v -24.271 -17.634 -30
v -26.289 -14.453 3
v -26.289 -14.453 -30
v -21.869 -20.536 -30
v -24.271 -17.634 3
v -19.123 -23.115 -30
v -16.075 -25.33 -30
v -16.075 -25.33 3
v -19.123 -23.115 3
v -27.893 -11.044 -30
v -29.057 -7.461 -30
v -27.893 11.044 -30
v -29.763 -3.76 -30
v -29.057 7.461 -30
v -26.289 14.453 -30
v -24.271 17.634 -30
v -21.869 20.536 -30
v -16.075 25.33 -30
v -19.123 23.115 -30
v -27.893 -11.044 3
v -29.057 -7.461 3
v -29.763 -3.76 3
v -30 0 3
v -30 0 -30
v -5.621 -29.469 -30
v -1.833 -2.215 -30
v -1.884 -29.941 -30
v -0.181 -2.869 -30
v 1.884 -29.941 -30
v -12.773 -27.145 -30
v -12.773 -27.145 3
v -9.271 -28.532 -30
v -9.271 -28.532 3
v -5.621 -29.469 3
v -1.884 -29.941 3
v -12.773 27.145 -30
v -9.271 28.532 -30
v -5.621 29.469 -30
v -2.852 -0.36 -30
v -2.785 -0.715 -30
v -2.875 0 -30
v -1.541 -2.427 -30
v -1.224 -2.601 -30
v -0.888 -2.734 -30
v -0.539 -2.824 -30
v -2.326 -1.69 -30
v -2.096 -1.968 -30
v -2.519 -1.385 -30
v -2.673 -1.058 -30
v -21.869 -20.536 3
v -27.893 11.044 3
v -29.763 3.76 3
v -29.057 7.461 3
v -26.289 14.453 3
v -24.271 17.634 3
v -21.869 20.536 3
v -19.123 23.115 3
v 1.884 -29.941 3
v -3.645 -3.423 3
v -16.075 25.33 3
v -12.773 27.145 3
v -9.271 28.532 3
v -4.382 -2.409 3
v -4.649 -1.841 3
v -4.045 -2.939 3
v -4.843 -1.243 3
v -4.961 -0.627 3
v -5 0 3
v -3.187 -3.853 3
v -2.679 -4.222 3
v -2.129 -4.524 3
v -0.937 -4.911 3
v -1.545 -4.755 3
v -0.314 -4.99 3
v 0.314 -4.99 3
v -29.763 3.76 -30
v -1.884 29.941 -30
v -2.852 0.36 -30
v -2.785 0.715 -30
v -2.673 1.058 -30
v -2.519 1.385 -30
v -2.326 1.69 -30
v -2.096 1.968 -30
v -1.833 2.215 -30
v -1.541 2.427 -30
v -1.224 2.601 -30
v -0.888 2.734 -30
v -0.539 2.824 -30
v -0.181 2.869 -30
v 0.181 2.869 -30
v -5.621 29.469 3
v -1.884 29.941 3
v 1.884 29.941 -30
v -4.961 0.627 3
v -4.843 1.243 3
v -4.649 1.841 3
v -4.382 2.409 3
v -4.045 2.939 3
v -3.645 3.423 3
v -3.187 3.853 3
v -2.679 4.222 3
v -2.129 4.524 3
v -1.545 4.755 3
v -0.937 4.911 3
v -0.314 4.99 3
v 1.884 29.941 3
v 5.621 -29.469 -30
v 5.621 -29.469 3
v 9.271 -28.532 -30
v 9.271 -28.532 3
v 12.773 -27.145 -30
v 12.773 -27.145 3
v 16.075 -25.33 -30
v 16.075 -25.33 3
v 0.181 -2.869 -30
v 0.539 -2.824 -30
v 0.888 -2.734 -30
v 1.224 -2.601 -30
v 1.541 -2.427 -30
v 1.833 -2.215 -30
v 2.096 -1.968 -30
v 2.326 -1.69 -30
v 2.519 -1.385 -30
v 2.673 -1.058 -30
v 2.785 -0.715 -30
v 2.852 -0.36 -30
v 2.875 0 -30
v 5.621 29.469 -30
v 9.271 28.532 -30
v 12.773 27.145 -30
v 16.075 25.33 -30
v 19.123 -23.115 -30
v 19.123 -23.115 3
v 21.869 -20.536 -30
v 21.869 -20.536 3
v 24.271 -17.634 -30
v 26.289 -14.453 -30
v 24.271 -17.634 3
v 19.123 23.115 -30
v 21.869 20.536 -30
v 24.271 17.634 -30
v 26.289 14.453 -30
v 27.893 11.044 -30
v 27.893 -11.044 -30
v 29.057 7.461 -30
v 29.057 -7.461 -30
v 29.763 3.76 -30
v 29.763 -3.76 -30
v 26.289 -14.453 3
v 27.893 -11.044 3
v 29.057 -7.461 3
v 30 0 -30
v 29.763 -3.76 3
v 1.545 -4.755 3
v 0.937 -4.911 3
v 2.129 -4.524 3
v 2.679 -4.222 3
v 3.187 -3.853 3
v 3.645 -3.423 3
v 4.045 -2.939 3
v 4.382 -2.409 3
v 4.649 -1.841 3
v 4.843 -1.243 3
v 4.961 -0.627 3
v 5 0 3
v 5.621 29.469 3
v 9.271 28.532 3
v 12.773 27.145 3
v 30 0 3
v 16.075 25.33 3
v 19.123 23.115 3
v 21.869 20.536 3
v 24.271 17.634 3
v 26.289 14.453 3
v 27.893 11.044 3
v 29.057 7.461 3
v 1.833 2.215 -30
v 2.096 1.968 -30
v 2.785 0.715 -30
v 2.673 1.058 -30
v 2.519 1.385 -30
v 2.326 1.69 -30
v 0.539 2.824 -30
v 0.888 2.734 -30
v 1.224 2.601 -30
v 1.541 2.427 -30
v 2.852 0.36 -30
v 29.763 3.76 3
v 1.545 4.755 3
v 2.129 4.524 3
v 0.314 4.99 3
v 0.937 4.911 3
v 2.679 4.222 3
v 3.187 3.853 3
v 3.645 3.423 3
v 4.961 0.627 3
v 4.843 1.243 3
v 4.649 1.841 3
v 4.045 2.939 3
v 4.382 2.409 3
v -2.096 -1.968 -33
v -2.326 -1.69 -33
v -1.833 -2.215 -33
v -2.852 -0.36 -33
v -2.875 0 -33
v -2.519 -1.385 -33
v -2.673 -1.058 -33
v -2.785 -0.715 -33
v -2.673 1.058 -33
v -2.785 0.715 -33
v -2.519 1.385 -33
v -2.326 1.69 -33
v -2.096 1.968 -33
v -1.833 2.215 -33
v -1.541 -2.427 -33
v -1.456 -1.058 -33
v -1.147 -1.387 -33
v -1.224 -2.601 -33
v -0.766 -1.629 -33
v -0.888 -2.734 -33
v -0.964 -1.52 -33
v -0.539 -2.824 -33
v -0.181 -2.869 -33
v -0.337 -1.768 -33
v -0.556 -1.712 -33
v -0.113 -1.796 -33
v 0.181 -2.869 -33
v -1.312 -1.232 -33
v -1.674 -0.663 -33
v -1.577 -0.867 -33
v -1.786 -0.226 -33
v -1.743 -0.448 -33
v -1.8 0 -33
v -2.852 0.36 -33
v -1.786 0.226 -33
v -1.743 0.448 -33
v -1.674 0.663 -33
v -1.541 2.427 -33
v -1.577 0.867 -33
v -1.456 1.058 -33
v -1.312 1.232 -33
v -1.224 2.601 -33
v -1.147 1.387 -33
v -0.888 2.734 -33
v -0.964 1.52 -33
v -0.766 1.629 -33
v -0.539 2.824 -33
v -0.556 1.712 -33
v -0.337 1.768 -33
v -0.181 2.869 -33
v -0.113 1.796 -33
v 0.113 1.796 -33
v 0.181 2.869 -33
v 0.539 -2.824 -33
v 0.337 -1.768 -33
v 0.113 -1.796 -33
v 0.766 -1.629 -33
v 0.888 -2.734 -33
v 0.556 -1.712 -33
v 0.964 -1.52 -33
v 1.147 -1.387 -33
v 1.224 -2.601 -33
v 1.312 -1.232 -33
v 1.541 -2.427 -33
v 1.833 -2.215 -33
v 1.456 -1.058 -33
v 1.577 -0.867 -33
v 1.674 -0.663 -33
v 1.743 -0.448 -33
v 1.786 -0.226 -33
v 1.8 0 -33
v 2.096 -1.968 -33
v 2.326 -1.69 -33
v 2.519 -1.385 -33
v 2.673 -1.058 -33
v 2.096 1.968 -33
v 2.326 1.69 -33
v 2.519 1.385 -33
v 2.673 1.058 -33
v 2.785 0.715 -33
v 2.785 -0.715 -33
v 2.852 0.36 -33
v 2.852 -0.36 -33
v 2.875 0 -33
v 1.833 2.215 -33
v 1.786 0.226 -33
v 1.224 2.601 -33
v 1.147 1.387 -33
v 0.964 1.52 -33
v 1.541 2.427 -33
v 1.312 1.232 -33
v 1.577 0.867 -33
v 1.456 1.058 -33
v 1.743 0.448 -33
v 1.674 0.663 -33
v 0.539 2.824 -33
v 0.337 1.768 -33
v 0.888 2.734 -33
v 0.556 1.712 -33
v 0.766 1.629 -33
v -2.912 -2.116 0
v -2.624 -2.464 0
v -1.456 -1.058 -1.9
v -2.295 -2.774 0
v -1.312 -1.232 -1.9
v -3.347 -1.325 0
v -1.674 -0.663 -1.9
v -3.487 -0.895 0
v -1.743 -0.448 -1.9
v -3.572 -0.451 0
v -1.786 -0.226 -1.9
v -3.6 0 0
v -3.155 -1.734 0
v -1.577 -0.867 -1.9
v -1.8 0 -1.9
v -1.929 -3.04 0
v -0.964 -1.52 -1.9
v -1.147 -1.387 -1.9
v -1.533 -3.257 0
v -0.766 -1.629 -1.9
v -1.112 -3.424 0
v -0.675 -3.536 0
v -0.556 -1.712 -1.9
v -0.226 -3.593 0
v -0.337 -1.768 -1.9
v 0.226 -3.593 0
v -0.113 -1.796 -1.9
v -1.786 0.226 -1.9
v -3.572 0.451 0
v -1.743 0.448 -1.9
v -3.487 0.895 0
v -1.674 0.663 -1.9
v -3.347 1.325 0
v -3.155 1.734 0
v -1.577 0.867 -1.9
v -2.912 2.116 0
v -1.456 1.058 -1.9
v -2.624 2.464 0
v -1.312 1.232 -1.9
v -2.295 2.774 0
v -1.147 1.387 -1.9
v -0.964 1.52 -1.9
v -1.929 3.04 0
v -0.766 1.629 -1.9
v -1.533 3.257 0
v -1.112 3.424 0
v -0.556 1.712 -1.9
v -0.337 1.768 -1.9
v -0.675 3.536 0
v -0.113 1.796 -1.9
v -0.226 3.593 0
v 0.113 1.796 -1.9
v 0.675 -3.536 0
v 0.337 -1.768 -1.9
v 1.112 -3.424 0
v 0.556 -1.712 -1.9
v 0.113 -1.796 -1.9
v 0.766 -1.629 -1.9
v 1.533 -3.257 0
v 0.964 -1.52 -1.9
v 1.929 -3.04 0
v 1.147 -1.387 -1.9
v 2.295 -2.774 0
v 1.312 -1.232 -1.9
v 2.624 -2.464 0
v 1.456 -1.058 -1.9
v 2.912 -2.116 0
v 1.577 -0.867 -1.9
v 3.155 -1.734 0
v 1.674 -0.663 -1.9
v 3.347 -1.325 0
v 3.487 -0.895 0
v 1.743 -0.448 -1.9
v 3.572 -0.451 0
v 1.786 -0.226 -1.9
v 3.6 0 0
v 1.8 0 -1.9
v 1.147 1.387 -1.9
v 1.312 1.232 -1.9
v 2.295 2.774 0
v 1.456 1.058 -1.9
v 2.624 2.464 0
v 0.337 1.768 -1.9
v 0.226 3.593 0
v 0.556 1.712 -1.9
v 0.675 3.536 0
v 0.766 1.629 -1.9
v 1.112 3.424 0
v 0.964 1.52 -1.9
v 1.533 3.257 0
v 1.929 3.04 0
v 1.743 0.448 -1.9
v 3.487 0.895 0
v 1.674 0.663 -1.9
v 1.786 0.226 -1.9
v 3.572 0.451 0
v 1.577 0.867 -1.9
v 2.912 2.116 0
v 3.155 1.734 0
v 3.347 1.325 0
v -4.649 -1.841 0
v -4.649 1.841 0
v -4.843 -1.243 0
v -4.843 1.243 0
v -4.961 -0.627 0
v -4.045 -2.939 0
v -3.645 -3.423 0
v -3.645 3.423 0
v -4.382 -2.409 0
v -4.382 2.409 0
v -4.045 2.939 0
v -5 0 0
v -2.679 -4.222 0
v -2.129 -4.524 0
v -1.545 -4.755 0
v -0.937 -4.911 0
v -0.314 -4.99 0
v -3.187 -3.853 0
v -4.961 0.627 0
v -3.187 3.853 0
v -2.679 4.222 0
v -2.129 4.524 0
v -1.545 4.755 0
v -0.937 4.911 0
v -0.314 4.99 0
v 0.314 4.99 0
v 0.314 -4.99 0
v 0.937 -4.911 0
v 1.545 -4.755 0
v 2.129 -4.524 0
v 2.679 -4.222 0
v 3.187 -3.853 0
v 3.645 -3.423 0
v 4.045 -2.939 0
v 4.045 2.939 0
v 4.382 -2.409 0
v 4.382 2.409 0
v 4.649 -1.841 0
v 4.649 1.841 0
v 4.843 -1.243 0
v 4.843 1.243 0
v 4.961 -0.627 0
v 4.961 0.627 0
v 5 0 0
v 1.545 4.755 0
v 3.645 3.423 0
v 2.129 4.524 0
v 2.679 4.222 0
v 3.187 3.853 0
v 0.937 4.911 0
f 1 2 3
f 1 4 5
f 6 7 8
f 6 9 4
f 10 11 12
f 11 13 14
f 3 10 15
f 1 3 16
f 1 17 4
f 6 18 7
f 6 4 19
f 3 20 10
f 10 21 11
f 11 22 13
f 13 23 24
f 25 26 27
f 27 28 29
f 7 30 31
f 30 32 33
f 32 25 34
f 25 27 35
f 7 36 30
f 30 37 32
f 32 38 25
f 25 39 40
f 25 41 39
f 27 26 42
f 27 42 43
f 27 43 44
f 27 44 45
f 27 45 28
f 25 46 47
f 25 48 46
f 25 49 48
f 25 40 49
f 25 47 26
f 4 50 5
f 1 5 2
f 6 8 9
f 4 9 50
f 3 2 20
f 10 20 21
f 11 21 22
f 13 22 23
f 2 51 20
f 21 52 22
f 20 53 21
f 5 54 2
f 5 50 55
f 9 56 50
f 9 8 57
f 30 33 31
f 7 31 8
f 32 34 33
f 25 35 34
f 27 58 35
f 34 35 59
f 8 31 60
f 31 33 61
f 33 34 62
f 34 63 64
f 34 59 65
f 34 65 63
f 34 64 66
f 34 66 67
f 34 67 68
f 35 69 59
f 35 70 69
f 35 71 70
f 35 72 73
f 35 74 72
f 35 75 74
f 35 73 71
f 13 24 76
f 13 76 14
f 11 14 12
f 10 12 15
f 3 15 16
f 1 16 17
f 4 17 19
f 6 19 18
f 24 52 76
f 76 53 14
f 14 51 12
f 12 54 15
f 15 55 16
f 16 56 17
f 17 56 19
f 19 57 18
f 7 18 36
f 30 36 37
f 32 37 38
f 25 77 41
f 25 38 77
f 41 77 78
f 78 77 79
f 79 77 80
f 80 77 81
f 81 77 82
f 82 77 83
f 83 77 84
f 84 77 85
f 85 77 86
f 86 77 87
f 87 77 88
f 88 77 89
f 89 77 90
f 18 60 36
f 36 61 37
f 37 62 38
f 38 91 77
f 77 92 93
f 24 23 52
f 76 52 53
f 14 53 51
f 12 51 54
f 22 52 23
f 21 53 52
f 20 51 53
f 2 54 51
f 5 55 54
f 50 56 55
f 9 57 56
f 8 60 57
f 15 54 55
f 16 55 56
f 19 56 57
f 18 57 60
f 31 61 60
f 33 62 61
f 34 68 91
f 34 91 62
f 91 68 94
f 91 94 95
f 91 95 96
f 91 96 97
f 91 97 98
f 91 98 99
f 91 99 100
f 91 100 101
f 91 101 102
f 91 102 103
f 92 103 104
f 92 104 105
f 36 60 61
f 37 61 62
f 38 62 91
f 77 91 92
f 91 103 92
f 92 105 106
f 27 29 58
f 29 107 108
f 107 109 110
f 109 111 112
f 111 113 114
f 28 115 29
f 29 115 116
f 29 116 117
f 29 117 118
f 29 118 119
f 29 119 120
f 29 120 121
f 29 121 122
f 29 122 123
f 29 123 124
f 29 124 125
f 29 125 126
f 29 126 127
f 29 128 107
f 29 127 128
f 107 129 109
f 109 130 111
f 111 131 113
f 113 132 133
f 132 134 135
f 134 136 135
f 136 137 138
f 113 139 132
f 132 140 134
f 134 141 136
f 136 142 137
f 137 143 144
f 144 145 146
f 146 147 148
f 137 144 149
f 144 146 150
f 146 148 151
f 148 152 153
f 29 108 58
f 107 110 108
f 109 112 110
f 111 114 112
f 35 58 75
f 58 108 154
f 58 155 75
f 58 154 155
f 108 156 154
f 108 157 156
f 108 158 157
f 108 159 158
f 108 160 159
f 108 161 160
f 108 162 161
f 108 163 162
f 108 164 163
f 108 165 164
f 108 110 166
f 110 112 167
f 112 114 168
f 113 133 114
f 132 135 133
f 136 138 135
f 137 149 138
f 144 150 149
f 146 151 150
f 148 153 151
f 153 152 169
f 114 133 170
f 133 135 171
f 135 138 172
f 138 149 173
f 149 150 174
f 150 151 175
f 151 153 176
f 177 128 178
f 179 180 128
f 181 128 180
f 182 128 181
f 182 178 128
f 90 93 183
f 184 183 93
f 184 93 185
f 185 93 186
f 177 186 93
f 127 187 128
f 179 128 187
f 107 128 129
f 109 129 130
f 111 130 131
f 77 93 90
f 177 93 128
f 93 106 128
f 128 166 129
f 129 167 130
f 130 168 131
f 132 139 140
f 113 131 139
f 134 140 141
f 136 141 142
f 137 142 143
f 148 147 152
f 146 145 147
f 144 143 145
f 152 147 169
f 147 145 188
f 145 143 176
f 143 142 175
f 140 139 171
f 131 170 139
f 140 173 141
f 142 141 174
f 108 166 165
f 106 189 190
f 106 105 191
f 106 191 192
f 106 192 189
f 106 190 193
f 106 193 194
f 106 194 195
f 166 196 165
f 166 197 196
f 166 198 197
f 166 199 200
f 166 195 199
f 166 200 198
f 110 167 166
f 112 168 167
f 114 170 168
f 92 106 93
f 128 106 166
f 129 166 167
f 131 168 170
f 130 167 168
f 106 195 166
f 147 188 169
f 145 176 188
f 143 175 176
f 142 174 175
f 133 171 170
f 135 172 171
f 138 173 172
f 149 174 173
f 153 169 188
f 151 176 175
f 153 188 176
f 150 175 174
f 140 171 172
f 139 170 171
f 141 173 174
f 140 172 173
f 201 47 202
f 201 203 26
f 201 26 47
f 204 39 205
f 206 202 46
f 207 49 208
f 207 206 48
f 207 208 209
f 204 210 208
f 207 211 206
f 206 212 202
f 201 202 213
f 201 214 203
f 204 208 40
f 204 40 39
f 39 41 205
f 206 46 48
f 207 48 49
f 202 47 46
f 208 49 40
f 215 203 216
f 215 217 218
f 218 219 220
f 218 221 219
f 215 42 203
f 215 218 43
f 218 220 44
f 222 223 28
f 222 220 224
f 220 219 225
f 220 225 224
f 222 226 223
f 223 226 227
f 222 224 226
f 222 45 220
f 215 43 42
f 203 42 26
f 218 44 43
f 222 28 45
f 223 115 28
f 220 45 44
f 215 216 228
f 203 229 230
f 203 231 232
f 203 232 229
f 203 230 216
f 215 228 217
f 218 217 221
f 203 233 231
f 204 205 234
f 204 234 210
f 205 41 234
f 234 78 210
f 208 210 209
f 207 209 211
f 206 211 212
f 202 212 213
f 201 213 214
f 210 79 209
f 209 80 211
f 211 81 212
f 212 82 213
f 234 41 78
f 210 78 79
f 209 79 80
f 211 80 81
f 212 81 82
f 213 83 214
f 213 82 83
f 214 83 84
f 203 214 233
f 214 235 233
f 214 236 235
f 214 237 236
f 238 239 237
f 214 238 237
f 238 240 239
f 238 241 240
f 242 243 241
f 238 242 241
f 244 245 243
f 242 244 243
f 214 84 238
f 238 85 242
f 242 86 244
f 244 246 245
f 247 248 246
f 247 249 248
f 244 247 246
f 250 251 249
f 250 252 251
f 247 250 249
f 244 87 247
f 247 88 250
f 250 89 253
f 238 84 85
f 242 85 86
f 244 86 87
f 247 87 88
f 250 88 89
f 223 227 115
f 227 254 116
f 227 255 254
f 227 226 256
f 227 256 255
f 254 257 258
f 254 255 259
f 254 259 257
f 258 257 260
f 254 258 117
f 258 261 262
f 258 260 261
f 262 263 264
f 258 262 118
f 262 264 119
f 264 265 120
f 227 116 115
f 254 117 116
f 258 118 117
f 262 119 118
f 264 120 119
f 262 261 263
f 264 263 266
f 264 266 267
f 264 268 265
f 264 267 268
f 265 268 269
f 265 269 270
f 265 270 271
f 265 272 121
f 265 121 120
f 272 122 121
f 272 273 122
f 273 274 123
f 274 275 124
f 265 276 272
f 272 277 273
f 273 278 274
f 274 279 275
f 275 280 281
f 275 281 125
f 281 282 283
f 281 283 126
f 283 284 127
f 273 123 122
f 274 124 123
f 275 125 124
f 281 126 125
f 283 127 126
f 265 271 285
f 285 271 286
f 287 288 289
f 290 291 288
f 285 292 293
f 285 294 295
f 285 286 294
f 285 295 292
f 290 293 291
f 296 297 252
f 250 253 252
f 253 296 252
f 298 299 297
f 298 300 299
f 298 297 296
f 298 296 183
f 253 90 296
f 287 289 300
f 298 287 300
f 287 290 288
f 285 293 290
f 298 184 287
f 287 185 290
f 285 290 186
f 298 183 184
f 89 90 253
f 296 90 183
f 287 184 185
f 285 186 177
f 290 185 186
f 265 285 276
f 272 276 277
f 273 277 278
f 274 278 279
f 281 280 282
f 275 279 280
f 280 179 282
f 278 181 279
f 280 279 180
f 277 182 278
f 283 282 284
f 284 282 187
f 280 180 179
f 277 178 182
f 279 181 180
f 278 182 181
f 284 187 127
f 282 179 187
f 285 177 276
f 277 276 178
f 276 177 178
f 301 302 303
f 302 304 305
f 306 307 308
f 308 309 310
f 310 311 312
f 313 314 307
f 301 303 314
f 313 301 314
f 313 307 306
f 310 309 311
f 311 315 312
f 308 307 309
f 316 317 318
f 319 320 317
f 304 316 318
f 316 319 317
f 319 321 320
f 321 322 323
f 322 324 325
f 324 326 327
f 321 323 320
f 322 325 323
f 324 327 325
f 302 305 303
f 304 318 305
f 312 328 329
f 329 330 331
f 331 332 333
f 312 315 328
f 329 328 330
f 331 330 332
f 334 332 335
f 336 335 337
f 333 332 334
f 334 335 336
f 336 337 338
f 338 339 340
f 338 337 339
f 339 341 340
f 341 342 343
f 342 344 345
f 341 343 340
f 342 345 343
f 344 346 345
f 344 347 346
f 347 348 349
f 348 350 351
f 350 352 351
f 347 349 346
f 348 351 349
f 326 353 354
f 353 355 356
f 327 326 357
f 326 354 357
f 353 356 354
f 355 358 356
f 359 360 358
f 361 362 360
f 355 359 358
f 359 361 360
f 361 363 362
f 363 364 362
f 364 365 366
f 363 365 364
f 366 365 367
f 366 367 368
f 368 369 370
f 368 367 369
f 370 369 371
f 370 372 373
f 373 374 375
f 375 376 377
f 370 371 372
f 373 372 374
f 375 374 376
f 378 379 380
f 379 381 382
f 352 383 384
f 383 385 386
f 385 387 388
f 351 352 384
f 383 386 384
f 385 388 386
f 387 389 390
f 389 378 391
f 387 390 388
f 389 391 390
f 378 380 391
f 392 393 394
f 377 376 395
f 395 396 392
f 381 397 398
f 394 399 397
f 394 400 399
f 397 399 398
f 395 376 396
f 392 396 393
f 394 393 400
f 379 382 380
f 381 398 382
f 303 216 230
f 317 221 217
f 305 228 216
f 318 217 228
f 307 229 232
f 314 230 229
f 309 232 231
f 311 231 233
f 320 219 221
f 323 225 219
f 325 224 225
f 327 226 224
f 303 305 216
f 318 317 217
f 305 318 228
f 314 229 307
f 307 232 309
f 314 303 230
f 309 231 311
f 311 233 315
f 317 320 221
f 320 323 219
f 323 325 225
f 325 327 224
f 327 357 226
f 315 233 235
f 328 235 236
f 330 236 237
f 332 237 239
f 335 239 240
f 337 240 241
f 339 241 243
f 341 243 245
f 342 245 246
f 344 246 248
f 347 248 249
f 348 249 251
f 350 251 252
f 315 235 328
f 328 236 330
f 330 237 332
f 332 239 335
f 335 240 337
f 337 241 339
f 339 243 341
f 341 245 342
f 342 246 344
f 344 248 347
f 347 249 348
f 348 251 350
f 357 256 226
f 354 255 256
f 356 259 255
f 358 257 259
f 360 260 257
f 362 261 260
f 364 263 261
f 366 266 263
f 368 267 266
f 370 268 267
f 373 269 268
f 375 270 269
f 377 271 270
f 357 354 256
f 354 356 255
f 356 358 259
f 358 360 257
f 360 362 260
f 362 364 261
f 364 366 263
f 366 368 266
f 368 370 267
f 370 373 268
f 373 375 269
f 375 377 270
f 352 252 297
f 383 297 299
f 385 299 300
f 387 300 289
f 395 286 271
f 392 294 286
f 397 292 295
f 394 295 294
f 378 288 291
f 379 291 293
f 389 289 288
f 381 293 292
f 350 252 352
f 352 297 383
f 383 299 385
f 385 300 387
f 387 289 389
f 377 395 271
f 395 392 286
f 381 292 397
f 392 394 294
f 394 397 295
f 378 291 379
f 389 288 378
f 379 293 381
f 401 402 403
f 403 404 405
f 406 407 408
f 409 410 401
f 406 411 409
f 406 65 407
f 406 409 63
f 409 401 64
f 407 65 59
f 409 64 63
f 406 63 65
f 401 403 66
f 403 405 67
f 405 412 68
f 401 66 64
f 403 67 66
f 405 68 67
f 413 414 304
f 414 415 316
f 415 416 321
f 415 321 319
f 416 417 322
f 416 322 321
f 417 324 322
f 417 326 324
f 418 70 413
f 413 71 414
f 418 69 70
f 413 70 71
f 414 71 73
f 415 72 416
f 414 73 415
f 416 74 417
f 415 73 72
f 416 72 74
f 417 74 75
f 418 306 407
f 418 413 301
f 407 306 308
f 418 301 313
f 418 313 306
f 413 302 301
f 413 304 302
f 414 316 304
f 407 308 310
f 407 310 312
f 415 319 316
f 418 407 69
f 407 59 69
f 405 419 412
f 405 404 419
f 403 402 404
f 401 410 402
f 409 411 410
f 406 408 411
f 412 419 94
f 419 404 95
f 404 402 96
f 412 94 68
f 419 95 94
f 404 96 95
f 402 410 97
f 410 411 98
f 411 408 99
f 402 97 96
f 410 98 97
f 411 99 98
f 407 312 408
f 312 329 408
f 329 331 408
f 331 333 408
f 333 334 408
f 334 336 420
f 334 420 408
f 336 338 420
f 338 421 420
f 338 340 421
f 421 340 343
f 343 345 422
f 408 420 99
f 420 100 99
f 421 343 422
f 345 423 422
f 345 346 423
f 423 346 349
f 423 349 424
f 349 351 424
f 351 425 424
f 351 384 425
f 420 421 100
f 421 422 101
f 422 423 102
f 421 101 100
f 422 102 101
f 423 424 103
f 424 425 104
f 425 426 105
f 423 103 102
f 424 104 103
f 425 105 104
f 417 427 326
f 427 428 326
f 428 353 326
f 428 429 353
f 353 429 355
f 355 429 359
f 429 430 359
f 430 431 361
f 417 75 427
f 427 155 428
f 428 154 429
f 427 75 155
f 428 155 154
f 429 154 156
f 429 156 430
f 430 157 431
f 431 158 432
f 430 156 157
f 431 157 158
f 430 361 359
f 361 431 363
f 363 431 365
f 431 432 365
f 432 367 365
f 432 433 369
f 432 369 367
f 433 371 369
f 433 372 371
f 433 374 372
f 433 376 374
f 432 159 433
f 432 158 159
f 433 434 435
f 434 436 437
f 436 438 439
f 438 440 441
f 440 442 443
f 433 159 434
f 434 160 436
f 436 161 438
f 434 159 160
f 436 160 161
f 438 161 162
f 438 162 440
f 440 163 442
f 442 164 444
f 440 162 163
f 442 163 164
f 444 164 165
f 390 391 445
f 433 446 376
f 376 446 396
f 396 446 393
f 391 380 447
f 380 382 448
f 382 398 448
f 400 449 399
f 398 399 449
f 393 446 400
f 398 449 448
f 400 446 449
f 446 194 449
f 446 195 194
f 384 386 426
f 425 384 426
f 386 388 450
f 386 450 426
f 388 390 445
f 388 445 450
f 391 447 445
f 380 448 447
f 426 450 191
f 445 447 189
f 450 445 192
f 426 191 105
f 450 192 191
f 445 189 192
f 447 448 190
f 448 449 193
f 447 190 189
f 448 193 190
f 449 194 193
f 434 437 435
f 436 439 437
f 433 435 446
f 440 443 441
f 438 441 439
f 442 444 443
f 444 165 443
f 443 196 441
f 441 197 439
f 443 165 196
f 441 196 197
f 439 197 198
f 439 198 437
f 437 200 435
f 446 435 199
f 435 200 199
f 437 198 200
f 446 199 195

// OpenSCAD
$fn = 50;

difference() {
	union() {
		translate(v = [0, 0, -30.0]) {
			cylinder(h = 33, r = 30.0);
		}
		#translate(v = [0, 0, -33.0]) {
			cylinder(h = 33, r = 2.875);
		}
	}
	union() {
		translate(v = [0, 0, 0]) {
			rotate(a = [0, 0, 0]) {
				difference() {
					union() {
						translate(v = [0, 0, -33.0]) {
							cylinder(h = 33, r = 1.5);
						}
						translate(v = [0, 0, -1.9]) {
							cylinder(h = 1.9, r1 = 1.8, r2 = 3.6);
						}
						translate(v = [0, 0, -33.0]) {
							cylinder(h = 33, r = 1.8);
						}
						translate(v = [0, 0, -33.0]) {
							cylinder(h = 33, r = 1.5);
						}
					}
					union();
				}
			}
		}
		#cylinder(h = 3, r = 5.0);
	}
}
